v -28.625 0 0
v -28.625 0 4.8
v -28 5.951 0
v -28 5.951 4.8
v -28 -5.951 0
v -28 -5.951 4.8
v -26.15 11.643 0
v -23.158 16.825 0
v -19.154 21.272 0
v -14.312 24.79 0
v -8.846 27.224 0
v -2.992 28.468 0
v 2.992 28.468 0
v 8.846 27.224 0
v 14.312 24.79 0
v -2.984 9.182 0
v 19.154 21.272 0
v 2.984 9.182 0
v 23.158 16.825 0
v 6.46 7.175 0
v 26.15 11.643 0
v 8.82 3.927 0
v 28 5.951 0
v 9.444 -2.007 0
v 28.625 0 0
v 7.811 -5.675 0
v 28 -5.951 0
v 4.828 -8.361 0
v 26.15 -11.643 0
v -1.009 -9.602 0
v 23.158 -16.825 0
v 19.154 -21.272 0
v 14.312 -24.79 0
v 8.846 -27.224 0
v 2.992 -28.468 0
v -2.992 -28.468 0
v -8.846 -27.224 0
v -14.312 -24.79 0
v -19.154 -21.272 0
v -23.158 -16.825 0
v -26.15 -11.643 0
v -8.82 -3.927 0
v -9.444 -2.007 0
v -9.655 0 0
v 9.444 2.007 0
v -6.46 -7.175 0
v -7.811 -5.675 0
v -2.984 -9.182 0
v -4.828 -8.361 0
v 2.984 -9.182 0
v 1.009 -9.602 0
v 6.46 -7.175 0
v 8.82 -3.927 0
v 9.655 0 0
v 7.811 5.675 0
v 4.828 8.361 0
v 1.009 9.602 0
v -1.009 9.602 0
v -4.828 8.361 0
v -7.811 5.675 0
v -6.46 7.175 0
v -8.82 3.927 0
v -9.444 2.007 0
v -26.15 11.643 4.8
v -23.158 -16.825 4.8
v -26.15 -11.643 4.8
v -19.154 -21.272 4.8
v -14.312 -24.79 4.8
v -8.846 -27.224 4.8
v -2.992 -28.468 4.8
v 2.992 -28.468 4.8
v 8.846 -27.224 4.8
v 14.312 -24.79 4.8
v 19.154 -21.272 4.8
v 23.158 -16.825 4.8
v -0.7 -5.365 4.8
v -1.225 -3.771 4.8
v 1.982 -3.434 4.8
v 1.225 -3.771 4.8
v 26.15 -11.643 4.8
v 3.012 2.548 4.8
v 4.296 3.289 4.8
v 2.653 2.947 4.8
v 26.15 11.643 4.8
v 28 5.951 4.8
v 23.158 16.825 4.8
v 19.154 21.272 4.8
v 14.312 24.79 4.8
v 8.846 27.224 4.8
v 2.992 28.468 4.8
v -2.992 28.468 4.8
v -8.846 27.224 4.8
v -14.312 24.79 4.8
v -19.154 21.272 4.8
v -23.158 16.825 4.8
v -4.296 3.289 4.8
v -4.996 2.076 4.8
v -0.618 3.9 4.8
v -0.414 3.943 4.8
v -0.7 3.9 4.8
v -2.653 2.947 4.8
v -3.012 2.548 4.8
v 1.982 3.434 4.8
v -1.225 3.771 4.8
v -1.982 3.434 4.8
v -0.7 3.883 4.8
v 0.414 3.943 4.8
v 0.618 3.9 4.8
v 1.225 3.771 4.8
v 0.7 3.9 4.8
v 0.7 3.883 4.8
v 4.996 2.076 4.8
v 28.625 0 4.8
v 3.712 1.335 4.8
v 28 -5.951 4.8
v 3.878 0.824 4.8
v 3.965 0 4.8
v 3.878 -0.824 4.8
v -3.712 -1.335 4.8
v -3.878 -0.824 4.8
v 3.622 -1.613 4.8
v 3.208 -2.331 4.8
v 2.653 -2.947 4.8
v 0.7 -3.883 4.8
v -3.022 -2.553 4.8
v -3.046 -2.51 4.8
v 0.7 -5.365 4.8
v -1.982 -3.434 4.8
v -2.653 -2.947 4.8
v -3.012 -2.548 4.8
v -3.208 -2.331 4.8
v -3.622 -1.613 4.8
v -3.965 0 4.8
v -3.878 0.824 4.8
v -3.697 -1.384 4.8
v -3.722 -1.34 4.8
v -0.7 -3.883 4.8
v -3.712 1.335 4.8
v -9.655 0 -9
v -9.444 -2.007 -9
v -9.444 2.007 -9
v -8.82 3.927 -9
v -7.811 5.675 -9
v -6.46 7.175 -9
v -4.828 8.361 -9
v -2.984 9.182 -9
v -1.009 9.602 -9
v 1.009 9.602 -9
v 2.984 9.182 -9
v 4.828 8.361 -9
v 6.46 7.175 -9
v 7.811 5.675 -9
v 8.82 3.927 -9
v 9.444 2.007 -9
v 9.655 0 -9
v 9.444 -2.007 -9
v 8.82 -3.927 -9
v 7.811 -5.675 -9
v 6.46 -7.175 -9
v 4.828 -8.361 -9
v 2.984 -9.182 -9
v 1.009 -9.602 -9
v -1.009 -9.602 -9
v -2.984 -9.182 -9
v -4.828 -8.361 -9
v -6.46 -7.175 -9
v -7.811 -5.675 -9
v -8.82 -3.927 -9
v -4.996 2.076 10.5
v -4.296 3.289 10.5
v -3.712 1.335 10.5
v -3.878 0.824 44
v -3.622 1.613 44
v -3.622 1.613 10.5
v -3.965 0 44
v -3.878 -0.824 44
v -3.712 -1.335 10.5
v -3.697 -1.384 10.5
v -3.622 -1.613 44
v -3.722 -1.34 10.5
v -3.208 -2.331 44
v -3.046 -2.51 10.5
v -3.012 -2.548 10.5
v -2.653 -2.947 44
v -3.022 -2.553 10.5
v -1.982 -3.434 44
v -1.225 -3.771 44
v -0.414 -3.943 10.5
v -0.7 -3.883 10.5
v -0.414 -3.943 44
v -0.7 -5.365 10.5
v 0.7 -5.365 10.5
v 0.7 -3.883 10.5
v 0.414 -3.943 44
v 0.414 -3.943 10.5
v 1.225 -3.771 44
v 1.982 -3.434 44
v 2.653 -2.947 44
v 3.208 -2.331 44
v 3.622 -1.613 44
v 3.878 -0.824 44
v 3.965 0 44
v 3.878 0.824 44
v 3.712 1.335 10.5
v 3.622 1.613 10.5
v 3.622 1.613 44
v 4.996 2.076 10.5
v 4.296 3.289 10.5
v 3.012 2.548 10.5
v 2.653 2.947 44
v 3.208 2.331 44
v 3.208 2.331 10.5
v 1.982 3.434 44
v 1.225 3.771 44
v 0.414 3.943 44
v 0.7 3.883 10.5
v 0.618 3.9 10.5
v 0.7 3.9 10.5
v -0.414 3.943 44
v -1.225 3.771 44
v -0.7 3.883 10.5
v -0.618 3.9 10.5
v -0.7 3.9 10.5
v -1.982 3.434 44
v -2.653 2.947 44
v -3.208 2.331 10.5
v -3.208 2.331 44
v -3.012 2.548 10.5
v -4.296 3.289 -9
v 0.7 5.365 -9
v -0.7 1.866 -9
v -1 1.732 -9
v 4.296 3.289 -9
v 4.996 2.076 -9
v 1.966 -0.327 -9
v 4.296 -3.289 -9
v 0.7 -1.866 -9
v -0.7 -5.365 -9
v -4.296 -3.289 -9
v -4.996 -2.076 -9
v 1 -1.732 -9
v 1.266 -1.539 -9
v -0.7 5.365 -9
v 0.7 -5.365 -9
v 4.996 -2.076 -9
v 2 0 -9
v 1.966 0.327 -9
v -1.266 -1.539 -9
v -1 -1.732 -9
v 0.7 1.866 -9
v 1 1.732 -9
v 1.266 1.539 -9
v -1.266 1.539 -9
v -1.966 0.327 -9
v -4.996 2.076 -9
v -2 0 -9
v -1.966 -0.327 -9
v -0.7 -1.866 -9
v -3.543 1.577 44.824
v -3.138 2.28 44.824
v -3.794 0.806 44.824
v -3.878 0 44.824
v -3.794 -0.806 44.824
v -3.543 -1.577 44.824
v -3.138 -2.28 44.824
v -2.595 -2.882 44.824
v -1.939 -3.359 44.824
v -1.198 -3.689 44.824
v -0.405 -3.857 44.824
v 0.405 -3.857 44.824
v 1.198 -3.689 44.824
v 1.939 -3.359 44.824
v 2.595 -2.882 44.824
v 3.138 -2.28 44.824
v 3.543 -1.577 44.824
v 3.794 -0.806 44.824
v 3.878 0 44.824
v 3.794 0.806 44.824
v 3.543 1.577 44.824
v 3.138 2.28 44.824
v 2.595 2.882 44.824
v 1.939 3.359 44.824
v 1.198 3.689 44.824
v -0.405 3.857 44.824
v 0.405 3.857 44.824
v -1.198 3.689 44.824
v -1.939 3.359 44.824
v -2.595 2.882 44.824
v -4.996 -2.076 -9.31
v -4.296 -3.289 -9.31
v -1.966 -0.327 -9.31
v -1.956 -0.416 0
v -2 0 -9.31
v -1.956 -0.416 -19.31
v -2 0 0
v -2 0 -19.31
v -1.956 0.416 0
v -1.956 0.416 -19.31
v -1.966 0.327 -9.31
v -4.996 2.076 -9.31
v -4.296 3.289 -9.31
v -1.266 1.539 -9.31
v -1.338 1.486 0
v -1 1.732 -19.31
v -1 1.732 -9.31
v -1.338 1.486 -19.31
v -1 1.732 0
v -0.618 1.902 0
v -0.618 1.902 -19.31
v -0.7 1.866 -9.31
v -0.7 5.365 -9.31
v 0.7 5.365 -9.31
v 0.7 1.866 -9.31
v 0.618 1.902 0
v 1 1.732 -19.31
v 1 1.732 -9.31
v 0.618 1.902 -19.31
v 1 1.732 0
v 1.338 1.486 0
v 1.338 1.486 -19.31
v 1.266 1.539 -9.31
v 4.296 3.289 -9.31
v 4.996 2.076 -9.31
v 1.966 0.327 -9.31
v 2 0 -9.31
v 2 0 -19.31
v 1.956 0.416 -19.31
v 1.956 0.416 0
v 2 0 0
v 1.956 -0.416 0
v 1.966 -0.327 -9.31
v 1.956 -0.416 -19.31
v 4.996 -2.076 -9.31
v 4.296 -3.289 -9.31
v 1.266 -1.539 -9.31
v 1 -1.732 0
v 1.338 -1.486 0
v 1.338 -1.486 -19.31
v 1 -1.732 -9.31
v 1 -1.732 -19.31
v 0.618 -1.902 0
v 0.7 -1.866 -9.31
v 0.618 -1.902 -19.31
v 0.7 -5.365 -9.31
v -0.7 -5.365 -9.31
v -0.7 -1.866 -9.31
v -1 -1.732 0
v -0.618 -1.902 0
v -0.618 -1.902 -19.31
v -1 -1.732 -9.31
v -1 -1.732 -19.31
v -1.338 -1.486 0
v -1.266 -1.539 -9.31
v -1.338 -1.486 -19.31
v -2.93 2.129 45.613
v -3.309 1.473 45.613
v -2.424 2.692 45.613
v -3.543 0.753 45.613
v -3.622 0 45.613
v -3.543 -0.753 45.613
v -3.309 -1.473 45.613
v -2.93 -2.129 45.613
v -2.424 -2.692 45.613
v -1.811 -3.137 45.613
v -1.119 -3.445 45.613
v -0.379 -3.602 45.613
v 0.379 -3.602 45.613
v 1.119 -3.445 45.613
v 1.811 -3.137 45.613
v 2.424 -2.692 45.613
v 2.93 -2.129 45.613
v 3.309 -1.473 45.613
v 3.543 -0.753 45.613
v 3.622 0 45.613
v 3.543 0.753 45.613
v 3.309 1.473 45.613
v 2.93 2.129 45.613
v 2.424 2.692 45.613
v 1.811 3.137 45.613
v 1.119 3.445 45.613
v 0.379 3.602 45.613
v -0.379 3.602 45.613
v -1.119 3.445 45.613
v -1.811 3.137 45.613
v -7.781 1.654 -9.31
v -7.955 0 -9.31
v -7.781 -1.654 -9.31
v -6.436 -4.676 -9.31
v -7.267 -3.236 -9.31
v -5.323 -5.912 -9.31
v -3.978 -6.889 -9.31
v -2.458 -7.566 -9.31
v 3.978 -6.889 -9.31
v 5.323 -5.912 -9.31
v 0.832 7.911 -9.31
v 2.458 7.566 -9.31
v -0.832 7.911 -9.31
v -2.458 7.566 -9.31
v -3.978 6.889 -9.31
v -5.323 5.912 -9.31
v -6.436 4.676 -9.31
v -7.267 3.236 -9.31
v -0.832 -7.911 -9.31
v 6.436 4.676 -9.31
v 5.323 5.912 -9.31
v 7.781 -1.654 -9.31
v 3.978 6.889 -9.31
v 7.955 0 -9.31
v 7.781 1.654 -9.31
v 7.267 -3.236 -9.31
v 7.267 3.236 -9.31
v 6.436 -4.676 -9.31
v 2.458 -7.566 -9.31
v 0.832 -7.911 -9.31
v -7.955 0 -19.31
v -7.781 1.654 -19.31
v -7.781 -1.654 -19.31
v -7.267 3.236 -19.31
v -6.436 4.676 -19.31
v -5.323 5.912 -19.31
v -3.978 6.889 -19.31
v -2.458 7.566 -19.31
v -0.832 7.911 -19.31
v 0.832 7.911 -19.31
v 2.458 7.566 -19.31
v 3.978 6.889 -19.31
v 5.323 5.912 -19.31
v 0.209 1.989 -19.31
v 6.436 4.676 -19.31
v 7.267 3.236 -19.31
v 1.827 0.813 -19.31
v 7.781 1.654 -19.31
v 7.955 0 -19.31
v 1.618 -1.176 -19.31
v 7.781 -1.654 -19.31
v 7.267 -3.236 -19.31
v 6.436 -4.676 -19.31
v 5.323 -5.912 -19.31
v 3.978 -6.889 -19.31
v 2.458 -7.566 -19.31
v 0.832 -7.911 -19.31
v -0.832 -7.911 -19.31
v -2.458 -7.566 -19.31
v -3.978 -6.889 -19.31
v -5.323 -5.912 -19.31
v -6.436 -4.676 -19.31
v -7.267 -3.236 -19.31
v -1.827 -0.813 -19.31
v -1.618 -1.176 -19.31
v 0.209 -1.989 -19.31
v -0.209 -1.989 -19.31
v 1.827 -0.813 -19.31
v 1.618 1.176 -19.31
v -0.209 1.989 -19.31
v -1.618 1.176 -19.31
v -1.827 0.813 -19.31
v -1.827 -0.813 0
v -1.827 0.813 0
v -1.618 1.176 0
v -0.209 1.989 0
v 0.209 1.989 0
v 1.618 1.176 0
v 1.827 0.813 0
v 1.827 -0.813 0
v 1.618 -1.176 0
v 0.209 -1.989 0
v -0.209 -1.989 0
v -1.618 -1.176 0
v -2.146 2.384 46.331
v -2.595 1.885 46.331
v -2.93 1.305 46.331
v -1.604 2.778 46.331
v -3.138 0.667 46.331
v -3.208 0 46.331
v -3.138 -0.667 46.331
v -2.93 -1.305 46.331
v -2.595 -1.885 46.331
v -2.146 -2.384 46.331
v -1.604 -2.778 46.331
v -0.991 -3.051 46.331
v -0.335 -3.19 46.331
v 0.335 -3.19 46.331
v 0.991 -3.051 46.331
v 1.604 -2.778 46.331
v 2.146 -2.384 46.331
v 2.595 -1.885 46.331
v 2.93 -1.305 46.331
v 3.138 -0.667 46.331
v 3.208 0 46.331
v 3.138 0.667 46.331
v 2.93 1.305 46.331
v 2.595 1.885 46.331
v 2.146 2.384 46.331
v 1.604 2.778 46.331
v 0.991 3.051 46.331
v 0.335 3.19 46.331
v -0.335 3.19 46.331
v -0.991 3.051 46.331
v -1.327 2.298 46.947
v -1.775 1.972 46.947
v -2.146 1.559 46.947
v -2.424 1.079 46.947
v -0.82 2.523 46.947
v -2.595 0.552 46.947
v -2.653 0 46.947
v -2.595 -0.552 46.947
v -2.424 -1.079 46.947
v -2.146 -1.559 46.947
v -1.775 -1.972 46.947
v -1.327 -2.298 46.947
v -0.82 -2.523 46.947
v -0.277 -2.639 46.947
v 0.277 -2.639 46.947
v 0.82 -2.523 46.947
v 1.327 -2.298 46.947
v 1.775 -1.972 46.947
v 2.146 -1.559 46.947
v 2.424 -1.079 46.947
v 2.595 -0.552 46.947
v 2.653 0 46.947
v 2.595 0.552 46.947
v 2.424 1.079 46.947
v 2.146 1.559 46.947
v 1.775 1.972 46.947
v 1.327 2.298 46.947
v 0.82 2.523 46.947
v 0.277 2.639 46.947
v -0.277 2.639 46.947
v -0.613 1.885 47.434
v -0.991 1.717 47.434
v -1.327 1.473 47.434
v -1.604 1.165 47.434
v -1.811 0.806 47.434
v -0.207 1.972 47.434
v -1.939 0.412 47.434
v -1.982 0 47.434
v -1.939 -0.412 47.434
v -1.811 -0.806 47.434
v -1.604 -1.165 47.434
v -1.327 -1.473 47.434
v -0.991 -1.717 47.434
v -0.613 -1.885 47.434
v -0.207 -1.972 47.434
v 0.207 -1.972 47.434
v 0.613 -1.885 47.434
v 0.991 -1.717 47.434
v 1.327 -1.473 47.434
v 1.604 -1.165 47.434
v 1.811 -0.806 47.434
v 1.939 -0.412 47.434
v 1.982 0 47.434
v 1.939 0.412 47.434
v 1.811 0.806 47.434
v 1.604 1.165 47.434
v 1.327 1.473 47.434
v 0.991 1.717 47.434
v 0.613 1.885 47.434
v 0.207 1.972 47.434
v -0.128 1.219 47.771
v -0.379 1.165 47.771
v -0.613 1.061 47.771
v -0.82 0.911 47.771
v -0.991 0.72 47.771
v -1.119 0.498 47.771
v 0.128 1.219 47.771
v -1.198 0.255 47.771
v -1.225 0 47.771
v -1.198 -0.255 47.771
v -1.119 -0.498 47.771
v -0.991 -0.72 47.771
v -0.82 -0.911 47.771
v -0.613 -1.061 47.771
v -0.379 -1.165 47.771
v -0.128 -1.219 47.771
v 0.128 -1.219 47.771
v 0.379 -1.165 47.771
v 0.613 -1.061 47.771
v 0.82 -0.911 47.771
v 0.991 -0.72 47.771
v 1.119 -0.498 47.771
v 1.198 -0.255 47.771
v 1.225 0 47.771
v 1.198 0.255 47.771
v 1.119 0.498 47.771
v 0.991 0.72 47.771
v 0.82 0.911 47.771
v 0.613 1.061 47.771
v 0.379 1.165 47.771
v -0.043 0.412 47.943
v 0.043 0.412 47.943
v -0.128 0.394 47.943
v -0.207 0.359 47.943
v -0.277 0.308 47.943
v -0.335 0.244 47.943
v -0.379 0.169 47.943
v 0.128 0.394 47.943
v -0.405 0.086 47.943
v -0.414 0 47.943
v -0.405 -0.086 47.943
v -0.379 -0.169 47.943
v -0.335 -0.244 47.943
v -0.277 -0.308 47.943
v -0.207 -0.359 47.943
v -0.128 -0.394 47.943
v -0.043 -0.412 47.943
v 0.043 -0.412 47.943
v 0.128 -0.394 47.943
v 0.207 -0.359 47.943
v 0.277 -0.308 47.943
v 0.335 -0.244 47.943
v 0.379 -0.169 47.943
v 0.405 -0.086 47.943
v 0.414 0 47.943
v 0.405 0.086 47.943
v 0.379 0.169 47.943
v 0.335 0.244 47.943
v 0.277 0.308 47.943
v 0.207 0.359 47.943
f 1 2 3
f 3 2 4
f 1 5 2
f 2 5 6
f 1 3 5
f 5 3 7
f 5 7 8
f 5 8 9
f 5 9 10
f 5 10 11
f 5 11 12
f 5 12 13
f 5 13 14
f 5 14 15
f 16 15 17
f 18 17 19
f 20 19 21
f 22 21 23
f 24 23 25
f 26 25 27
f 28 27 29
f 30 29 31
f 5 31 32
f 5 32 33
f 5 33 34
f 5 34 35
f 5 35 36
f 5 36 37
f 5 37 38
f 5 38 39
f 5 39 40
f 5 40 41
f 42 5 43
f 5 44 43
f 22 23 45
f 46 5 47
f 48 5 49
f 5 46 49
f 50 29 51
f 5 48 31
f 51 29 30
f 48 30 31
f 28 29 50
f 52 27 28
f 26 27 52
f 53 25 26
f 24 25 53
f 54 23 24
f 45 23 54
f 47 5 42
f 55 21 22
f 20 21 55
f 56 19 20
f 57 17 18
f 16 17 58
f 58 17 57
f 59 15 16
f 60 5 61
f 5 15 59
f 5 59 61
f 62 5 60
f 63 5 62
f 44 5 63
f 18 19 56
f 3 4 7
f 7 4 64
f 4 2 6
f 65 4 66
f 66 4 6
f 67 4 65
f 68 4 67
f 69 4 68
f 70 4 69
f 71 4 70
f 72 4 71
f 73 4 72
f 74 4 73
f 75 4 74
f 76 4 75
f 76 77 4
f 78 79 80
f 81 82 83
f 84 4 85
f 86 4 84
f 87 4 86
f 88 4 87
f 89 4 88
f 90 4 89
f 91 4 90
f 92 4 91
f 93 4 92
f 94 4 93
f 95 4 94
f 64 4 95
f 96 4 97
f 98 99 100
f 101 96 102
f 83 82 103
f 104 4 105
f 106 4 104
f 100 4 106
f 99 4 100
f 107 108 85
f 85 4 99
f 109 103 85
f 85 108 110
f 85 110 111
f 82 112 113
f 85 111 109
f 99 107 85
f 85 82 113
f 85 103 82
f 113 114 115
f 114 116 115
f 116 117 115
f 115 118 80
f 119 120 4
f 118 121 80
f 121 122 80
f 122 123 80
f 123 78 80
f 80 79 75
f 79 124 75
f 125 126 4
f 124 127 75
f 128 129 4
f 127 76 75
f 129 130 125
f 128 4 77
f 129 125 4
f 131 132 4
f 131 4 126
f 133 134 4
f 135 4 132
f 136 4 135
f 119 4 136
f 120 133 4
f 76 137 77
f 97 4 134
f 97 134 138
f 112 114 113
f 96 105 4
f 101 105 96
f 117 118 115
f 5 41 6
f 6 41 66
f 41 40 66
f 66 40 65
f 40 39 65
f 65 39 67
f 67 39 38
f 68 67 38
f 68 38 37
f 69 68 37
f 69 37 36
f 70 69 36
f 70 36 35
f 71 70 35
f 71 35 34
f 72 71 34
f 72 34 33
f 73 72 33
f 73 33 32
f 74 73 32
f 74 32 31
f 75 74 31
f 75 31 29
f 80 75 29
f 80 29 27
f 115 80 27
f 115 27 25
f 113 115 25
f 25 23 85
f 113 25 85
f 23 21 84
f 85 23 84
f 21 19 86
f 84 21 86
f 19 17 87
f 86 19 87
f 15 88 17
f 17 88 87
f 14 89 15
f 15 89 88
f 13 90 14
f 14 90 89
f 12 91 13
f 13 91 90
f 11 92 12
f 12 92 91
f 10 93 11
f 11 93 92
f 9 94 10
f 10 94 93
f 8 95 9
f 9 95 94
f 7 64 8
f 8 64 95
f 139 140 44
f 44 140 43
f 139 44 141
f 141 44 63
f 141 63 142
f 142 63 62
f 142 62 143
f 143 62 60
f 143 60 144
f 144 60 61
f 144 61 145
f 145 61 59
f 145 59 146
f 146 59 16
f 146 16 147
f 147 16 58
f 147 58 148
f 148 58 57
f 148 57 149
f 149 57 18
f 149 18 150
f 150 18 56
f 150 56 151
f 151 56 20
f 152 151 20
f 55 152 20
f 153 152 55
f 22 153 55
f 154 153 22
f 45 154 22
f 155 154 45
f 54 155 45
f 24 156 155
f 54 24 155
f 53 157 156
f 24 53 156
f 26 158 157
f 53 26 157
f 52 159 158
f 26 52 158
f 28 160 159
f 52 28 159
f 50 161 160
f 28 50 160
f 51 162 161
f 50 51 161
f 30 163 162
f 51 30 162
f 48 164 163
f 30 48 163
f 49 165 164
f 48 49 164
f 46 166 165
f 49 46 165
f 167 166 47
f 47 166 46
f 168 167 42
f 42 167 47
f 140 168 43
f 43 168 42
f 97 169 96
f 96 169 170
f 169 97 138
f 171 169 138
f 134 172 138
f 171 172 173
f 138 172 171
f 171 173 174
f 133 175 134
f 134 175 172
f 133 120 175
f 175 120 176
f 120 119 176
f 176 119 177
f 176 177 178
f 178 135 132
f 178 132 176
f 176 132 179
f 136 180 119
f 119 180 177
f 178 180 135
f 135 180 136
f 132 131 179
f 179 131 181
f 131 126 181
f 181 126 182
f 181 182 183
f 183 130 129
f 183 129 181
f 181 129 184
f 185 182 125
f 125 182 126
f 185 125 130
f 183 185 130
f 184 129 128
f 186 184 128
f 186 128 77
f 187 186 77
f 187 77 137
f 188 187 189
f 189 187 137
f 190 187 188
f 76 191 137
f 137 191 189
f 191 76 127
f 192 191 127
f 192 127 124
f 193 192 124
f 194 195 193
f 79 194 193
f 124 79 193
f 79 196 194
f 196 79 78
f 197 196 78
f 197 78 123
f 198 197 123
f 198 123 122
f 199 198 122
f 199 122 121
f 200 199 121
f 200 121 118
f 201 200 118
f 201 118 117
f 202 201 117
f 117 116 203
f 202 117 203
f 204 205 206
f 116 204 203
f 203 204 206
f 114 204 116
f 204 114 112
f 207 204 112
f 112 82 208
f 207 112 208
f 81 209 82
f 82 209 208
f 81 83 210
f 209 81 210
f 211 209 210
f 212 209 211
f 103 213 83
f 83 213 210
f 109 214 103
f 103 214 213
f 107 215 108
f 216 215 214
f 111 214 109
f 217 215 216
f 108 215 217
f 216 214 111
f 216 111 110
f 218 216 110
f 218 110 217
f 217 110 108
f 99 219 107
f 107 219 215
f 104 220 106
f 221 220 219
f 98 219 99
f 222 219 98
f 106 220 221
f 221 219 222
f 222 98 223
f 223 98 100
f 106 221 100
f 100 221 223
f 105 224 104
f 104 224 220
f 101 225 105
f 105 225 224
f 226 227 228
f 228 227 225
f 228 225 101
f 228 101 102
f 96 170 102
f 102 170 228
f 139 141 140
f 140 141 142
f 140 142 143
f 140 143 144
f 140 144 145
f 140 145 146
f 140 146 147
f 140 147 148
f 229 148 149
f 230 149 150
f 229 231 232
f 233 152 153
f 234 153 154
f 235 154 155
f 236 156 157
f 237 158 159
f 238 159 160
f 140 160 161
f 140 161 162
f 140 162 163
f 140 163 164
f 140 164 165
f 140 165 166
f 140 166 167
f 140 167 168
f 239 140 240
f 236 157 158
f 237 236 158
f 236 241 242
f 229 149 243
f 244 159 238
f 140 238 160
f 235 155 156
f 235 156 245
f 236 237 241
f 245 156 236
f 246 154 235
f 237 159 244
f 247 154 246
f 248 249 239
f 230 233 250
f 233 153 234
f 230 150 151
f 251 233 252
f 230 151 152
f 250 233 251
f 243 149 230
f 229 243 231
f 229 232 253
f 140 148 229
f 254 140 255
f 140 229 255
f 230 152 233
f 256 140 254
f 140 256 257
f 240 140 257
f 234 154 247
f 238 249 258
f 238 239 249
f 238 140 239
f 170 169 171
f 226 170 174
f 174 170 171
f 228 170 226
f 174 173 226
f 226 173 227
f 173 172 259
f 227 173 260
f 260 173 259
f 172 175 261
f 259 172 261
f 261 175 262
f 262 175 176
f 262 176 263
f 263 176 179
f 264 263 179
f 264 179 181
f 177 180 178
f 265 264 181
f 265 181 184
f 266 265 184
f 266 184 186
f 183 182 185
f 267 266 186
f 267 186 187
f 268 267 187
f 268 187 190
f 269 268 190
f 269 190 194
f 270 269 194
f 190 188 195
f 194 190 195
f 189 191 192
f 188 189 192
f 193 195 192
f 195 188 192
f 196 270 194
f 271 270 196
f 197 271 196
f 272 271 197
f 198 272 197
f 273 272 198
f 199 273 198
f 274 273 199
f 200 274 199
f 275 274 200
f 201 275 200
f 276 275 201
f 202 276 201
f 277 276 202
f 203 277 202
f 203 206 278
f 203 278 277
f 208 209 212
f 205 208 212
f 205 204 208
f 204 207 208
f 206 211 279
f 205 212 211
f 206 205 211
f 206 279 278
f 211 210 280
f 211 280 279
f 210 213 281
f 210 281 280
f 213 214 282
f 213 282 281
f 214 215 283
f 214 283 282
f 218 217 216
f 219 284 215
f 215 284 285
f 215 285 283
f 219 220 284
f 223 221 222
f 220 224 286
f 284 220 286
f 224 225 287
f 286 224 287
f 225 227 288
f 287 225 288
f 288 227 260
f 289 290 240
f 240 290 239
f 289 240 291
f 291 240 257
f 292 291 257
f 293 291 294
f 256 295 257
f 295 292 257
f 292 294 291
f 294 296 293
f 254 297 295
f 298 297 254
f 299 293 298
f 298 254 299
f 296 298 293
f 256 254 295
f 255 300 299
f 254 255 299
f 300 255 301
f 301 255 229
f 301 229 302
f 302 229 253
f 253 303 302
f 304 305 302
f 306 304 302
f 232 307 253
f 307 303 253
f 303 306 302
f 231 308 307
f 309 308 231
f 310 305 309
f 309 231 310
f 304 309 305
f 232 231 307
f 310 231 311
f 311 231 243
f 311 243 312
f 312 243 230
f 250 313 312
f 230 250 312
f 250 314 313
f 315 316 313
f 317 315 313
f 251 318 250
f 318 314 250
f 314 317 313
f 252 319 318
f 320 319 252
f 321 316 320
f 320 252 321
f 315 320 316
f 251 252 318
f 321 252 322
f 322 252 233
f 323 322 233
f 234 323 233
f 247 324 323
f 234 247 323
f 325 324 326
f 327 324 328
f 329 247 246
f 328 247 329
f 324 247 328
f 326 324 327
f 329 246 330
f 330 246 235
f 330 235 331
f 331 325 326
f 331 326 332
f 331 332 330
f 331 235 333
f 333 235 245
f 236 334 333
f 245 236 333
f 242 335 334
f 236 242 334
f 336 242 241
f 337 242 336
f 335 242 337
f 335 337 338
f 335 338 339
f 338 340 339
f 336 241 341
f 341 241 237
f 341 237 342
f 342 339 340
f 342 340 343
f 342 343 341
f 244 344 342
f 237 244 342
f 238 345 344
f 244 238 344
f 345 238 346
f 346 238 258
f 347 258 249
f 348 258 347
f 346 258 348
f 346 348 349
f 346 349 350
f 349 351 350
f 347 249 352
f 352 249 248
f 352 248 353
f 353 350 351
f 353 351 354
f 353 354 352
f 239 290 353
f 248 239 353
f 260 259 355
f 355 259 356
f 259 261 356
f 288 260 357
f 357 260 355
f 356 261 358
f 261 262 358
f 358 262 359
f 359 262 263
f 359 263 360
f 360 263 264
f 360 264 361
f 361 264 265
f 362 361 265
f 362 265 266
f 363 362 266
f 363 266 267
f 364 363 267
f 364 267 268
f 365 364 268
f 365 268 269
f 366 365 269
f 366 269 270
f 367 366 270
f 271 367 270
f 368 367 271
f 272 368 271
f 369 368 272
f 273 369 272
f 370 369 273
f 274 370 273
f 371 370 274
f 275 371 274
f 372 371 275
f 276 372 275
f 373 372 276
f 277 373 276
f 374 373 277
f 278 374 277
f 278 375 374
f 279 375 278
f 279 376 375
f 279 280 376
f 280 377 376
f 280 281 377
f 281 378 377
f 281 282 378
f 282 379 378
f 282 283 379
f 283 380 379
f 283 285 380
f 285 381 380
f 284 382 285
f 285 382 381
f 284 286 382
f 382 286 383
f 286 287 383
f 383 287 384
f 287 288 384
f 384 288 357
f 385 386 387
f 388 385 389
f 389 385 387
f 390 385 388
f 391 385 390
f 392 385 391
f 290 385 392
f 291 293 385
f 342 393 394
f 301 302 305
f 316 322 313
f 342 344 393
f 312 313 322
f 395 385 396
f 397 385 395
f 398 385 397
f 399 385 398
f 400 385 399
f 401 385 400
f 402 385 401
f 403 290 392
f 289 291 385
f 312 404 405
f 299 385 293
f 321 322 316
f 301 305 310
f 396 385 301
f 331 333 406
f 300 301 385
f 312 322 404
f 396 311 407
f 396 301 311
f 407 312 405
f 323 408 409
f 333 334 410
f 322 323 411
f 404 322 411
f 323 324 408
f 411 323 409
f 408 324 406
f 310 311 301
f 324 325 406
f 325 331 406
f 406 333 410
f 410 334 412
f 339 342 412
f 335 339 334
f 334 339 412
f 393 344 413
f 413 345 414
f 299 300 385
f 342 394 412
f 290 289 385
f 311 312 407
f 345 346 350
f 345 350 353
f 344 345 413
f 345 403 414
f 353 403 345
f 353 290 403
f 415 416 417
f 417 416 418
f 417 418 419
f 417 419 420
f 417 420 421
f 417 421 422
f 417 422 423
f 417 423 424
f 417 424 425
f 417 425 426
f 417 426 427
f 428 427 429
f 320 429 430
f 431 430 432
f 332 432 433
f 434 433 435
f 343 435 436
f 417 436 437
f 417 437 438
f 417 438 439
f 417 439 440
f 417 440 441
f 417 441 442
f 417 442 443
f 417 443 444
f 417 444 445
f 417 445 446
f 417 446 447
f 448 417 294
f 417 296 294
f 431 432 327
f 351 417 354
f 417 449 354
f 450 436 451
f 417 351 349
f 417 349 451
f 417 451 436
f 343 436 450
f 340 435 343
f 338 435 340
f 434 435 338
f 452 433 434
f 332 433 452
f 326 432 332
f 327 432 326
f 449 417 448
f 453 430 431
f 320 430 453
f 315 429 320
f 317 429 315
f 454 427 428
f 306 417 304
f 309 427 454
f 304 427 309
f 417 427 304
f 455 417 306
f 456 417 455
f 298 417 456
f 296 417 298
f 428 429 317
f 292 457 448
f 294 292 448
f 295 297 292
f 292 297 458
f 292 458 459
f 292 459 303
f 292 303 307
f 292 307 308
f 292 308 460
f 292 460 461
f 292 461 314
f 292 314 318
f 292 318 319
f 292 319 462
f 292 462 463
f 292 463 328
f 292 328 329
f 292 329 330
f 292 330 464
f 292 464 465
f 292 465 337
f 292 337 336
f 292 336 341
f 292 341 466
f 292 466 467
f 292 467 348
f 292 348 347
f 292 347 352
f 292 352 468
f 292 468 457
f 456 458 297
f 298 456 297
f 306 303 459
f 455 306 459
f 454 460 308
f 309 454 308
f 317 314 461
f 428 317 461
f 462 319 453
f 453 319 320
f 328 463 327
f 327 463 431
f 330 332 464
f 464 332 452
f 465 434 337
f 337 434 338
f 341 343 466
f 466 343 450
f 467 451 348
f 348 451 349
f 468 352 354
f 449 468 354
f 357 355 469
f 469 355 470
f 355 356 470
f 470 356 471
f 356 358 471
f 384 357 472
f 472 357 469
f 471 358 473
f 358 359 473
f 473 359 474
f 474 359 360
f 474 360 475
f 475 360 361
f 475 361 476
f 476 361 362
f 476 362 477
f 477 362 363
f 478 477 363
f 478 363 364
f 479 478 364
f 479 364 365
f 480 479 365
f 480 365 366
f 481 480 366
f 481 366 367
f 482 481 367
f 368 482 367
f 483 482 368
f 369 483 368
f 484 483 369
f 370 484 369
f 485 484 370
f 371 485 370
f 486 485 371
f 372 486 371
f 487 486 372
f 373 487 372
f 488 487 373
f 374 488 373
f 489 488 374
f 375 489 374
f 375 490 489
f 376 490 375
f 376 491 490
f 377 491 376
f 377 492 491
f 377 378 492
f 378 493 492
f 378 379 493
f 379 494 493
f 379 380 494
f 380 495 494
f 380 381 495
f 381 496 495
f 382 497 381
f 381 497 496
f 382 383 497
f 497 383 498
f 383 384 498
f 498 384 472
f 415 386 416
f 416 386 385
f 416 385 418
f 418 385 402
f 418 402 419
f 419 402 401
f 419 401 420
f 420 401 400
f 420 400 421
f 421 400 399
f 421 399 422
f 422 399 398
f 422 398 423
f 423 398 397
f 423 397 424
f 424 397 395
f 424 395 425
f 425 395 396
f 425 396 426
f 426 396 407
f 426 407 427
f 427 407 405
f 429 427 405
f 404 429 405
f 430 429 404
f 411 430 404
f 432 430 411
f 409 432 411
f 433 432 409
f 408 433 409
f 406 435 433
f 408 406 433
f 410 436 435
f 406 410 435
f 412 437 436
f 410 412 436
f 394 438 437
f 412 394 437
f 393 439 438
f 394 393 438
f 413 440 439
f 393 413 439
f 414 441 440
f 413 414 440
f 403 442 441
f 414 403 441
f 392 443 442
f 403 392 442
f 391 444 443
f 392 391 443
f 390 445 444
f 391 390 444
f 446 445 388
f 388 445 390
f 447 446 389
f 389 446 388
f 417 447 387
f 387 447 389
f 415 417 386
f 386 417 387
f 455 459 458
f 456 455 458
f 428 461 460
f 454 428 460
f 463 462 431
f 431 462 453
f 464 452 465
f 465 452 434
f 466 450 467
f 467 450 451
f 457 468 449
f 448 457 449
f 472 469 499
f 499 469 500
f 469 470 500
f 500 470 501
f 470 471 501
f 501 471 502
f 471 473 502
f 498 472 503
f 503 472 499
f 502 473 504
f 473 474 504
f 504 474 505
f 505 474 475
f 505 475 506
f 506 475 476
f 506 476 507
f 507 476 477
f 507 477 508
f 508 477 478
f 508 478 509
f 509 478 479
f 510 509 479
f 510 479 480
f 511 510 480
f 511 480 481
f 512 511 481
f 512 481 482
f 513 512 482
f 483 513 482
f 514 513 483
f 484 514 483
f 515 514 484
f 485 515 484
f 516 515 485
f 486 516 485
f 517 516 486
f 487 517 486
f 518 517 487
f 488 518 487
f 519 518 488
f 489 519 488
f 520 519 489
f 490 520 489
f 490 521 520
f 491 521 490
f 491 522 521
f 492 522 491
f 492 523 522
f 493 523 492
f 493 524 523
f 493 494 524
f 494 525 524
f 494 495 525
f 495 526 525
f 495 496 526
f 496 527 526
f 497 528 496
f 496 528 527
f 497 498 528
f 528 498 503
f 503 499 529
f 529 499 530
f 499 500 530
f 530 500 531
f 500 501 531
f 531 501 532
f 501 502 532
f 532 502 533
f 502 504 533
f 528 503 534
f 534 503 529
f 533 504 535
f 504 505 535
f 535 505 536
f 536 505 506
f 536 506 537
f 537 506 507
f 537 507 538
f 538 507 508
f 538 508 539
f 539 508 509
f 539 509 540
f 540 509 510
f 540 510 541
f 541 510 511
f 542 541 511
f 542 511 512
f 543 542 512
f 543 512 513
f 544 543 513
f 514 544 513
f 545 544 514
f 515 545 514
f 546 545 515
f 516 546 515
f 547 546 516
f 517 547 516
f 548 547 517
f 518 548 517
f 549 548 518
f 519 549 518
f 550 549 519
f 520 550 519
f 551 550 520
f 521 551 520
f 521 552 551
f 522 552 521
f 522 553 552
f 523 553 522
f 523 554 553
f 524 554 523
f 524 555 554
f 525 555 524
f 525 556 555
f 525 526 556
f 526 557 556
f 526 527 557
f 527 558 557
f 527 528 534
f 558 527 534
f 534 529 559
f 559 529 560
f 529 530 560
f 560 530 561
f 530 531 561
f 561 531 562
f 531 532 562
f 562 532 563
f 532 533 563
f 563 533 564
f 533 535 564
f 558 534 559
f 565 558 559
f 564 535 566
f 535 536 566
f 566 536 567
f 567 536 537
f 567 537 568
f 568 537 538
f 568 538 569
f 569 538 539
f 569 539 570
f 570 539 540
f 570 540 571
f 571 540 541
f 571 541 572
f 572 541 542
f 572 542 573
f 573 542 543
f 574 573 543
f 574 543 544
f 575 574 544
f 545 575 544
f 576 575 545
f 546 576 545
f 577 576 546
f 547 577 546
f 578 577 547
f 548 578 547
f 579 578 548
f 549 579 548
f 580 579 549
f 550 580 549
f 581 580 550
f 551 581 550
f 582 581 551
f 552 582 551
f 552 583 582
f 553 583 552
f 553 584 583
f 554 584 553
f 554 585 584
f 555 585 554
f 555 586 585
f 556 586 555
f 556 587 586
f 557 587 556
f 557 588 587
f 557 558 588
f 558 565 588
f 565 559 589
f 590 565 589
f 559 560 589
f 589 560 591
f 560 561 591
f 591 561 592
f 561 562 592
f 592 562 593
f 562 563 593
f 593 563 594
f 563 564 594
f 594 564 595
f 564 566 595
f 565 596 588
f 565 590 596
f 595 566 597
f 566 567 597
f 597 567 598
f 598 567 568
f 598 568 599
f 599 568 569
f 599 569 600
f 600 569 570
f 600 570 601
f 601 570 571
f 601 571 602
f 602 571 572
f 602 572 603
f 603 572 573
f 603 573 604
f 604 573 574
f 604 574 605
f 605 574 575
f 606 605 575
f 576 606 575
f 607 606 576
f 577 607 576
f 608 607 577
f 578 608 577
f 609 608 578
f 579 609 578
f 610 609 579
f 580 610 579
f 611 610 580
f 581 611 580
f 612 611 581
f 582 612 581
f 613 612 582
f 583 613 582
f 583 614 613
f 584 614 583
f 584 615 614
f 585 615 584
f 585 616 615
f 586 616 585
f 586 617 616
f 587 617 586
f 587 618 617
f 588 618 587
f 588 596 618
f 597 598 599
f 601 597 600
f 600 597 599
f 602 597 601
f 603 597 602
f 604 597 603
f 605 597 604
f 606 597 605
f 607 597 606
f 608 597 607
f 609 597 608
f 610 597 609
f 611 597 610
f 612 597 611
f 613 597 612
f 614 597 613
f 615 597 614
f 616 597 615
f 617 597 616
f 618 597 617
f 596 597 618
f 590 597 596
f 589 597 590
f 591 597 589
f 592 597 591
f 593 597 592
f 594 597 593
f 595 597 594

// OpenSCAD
module spindle() //UMatic spindle for the takeup side
{
	difference()
	{
		union()
		{
		color("black") cylinder(h=4.8, d=57.25, $fs=.01);
		color("black") cylinder(h=44, d=7.93, $fs=.01);
		color("black") translate([0,0,44]) sphere(d=7.93, $fs=.01);
		color("black") translate([0,0,-9]) cylinder(h=9, d=19.31, $fs=.01);
		color("black") rotate([0,0,120]) cube([1.4,10.73,21], center=true);
		color("black") rotate([0,0,240]) cube([1.4,10.73,21], center=true);
		color("black") rotate([0,0,360]) cube([1.4,10.73,21], center=true);
		color("silver") translate([0,0,-19.31]) cylinder(h=10, d=15.91, $fs=.01);
			{

			}
		}
		
		union()
		color("black")
		{
		translate([-1,3.9,0]) 
		cube([1.4,7,10.8]);
	     	translate([0,3.9,0]) 
		cube([1.4,7,10.8]);
		translate([3.9,-1,0]) 
		rotate([0,0,240]) cube([5,7,10.8]);
		translate([-2.85,-2.85,0]) 
		rotate([0,0,120]) cube([5,7,10.8]);
		translate([0,0,-20]) cylinder(h=50, d=4, $fs=.01);
			{
			}
		}
	}
}



spindle();

module spindle2() //UMatic spindle for the takeup side
{
	difference()
	{
		union()
		{
		color("black") cylinder(h=4.8, d=57.25, $fs=.01);
		color("black") cylinder(h=44, d=7.93, $fs=.01);
			{

			}
		}
		
		union()
		{
			{
			}
		}
	}
}



spindle2();
